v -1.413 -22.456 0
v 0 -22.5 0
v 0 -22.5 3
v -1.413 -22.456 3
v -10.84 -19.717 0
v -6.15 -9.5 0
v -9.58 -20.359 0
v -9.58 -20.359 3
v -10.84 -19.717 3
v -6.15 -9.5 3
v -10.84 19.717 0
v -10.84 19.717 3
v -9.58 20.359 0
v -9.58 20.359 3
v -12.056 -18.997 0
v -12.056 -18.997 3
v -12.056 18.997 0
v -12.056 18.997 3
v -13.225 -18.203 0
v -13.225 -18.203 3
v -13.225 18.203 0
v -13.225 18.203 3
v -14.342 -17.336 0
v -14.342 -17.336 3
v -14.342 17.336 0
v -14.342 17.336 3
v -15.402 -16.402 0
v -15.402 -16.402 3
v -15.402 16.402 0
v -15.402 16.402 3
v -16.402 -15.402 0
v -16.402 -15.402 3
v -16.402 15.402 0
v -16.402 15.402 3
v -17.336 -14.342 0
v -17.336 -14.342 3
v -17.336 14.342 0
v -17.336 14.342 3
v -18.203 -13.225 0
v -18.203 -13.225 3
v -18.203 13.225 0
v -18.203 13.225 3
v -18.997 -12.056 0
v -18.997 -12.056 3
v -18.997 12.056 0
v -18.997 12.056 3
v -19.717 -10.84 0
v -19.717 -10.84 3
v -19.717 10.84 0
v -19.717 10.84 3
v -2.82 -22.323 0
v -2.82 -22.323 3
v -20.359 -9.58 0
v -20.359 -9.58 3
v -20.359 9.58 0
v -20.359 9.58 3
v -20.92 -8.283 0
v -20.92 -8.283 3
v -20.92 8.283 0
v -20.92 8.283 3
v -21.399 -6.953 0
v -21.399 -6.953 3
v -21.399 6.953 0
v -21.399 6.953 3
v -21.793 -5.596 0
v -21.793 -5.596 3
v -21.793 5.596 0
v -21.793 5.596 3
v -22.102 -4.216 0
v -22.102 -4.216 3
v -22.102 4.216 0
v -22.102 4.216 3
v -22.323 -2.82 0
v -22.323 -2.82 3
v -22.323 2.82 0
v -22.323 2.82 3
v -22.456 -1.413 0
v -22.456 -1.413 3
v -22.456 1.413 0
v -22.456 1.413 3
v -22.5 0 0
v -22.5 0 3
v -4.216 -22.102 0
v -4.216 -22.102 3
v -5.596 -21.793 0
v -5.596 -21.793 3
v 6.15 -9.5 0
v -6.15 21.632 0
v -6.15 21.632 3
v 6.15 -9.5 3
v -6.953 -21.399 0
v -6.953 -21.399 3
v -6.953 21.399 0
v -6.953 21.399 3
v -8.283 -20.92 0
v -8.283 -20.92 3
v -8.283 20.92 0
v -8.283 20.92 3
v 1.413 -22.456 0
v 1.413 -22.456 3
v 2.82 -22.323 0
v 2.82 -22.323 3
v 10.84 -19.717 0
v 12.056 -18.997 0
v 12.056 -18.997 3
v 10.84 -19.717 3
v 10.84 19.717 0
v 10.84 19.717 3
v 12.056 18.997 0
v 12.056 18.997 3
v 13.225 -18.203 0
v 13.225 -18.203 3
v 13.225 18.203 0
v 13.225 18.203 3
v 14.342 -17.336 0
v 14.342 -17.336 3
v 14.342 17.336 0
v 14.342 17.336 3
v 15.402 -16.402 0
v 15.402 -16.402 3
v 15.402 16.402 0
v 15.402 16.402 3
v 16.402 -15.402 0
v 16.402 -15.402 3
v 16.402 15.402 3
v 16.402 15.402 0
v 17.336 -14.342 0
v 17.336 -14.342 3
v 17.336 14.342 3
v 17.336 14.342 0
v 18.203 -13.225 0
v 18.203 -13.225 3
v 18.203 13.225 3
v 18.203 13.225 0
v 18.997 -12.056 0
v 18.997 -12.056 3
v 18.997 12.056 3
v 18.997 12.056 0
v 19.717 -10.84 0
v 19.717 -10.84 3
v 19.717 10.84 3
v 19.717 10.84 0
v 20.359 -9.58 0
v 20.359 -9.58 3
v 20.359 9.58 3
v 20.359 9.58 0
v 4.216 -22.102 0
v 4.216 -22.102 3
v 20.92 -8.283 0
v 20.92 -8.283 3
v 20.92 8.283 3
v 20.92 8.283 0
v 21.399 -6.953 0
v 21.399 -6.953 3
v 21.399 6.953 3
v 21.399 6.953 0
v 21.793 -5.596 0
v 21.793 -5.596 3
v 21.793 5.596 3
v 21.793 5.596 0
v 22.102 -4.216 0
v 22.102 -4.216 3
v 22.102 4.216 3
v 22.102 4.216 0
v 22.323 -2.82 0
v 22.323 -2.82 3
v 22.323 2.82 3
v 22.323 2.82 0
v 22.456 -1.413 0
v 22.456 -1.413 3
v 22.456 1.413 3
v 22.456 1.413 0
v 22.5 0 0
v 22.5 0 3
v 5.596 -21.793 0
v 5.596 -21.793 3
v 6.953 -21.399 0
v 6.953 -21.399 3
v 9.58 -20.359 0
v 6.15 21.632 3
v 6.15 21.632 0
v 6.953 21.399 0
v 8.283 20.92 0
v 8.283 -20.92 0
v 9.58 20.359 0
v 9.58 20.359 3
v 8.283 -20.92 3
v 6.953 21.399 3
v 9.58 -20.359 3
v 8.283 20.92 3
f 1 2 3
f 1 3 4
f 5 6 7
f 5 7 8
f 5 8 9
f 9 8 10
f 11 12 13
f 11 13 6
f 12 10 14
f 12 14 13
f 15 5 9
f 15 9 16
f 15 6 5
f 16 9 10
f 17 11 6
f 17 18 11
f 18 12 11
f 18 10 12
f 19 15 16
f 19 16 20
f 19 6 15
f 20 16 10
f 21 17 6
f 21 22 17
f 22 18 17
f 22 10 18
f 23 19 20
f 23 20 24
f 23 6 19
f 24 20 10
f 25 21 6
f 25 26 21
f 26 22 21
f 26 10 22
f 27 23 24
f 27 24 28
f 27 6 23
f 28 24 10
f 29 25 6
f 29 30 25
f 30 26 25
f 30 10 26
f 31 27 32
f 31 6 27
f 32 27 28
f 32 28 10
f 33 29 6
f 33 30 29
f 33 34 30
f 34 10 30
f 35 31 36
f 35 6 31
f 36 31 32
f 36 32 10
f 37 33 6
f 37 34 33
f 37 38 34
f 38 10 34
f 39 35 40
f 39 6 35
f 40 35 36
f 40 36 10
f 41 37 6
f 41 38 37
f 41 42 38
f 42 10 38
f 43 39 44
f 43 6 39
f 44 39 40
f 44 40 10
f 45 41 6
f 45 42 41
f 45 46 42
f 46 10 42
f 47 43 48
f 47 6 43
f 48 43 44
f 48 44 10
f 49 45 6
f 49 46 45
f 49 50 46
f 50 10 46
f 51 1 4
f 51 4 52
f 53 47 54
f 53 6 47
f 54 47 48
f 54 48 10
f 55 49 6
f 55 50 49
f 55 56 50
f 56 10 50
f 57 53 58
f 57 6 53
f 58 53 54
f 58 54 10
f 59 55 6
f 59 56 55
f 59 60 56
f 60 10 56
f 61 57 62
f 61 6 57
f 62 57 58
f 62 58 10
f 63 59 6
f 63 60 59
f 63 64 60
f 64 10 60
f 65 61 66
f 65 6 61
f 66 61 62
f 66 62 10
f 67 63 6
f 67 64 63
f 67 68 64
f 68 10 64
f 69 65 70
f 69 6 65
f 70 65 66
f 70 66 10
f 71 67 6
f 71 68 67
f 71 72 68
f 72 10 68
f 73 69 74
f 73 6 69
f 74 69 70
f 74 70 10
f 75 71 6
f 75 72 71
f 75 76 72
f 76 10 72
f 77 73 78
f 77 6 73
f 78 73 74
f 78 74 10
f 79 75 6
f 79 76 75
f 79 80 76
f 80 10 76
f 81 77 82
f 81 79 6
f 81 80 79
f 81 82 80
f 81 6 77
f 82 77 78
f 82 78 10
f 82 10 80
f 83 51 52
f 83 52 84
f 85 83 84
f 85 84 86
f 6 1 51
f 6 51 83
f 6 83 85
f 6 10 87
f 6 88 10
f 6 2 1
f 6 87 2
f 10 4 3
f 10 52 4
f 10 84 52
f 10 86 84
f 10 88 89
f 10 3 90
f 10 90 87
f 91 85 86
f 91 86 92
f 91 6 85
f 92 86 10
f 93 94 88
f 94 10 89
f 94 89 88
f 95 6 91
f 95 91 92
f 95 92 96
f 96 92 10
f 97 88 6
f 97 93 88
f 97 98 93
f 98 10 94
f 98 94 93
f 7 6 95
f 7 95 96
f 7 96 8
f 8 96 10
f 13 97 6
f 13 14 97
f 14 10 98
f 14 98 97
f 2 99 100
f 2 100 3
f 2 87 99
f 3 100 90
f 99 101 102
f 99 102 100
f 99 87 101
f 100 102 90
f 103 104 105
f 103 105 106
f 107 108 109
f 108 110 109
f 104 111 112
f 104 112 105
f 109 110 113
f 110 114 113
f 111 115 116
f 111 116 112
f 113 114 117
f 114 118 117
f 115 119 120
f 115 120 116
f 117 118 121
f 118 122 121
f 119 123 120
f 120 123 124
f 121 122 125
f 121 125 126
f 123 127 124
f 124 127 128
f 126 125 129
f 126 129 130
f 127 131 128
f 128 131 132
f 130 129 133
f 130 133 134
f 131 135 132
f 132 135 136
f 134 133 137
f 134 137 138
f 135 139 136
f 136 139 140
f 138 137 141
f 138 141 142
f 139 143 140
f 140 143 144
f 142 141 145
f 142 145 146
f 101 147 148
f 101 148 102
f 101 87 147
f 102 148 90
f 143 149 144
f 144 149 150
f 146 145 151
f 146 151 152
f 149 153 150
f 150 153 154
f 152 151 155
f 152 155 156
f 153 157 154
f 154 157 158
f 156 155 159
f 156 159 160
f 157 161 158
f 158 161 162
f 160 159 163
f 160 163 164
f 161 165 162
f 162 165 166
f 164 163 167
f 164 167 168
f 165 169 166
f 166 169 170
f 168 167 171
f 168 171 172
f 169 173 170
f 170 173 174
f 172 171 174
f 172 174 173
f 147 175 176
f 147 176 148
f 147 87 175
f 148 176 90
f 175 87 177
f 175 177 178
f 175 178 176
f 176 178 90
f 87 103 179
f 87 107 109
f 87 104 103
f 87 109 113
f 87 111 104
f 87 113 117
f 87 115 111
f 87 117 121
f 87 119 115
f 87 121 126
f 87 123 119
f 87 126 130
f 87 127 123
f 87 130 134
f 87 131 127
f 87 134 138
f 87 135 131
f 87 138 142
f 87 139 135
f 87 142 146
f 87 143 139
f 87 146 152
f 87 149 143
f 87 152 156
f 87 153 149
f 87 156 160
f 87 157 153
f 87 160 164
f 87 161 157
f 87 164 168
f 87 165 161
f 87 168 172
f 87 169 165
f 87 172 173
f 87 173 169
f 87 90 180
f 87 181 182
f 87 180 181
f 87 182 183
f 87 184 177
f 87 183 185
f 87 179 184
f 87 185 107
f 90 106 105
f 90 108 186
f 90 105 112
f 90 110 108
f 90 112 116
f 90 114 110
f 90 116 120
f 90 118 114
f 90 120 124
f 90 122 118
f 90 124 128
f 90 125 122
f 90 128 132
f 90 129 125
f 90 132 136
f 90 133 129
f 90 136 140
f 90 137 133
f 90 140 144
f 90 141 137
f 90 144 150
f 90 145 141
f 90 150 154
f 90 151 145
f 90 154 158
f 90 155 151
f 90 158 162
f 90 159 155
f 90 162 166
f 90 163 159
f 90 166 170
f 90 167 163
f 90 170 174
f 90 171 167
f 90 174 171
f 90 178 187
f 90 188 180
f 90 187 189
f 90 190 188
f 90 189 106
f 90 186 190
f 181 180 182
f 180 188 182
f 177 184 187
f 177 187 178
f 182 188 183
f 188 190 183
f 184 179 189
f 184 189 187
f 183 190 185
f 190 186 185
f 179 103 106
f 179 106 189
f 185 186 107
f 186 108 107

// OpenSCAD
// file: lib/polyScrewThread_r1.scad
/*
 *    polyScrewThread_r1.scad    by aubenc @ Thingiverse
 *
 * This script contains the library modules that can be used to generate
 * threaded rods, screws and nuts.
 *
 * http://www.thingiverse.com/thing:8796
 *
 * CC Public Domain
 */


/* Example:
 * Just a 100mm long threaded rod.
 *
 * screw_thread(15,   // Outer diameter of the thread
 *               4,   // Step, traveling length per turn, also, tooth height, whatever...
 *              55,   // Degrees for the shape of the tooth 
 *                       (XY plane = 0, Z = 90, btw, 0 and 90 will/should not work...)
 *             100,   // Length (Z) of the tread
 *            PI/2,   // Resolution, one face each "PI/2" mm of the perimeter, 
 *               0);  // Countersink style:
 *                         -2 - Not even flat ends
 *                         -1 - Bottom (countersink'd and top flat)
 *                          0 - None (top and bottom flat)
 *                          1 - Top (bottom flat)
 *                          2 - Both (countersink'd)
 */
module screw_thread(od,st,lf0,lt,rs,cs)
{
    or=od/2;
    ir=or-st/2*cos(lf0)/sin(lf0);
    pf=2*PI*or;
    sn=floor(pf/rs);
    lfxy=360/sn;
    ttn=round(lt/st+1);
    zt=st/sn;

    intersection()
    {
        if (cs >= -1)
        {
           thread_shape(cs,lt,or,ir,sn,st);
        }

        full_thread(ttn,st,sn,zt,lfxy,or,ir);
    }
}

/* Example.
 * A nut for the thread rod example.
 *
 * hexa_nut(24,  // Distance between flats
 *           8,  // Height 
 *           4,  // Step height (the half will be used to countersink the ends)
 *          55,  // Degrees (same as used for the screw_thread example)
 *          15,  // Outer diameter of the thread to match
 *         0.5)  // Resolution, you may want to set this to small values
 *                  (quite high res) to minimize overhang issues
 *
 */
module hex_nut(df,hg,sth,clf,cod,crs)
{

    difference()
    {
        hex_head(hg,df);

        hex_countersink_ends(sth/2,cod,clf,crs,hg);

        screw_thread(cod,sth,clf,hg,crs,-2);
    }
}


module hex_screw(od,st,lf0,lt,rs,cs,df,hg,ntl,ntd)
{
    ntr=od/2-(st/2)*cos(lf0)/sin(lf0);

    union()
    {
        hex_head(hg,df);

        translate([0,0,hg])
        if ( ntl == 0 )
        {
            cylinder(h=0.01, r=ntr, center=true);
        }
        else
        {
            if ( ntd == -1 )
            {
                cylinder(h=ntl+0.01, r=ntr, $fn=floor(od*PI/rs), center=false);
            }
            else if ( ntd == 0 )
            {
                union()
                {
                    cylinder(h=ntl-st/2,
                             r=od/2, $fn=floor(od*PI/rs), center=false);

                    translate([0,0,ntl-st/2])
                    cylinder(h=st/2,
                             r1=od/2, r2=ntr, 
                             $fn=floor(od*PI/rs), center=false);
                }
            }
            else
            {
                cylinder(h=ntl, r=ntd/2, $fn=ntd*PI/rs, center=false);
            }
        }

        translate([0,0,ntl+hg]) screw_thread(od,st,lf0,lt,rs,cs);
    }
}

module hex_screw_0(od,st,lf0,lt,rs,cs,df,hg,ntl,ntd)
{
    ntr=od/2-(st/2)*cos(lf0)/sin(lf0);

    union()
    {
        hex_head_0(hg,df);

        translate([0,0,hg])
        if ( ntl == 0 )
        {
            cylinder(h=0.01, r=ntr, center=true);
        }
        else
        {
            if ( ntd == -1 )
            {
                cylinder(h=ntl+0.01, r=ntr, $fn=floor(od*PI/rs), center=false);
            }
            else if ( ntd == 0 )
            {
                union()
                {
                    cylinder(h=ntl-st/2,
                             r=od/2, $fn=floor(od*PI/rs), center=false);

                    translate([0,0,ntl-st/2])
                    cylinder(h=st/2,
                             r1=od/2, r2=ntr, 
                             $fn=floor(od*PI/rs), center=false);
                }
            }
            else
            {
                cylinder(h=ntl, r=ntd/2, $fn=ntd*PI/rs, center=false);
            }
        }

        translate([0,0,ntl+hg]) screw_thread(od,st,lf0,lt,rs,cs);
    }
}

module thread_shape(cs,lt,or,ir,sn,st)
{
    if ( cs == 0 )
    {
        cylinder(h=lt, r=or, $fn=sn, center=false);
    }
    else
    {
        union()
        {
            translate([0,0,st/2])
              cylinder(h=lt-st+0.005, r=or, $fn=sn, center=false);

            if ( cs == -1 || cs == 2 )
            {
                cylinder(h=st/2, r1=ir, r2=or, $fn=sn, center=false);
            }
            else
            {
                cylinder(h=st/2, r=or, $fn=sn, center=false);
            }

            translate([0,0,lt-st/2])
            if ( cs == 1 || cs == 2 )
            {
                  cylinder(h=st/2, r1=or, r2=ir, $fn=sn, center=false);
            }
            else
            {
                cylinder(h=st/2, r=or, $fn=sn, center=false);
            }
        }
    }
}

module full_thread(ttn,st,sn,zt,lfxy,or,ir)
{
  if(ir >= 0.2)
  {
    for(i=[0:ttn-1])
    {
        for(j=[0:sn-1])
			assign( pt = [	[0,                  0,                  i*st-st            ],
                        [ir*cos(j*lfxy),     ir*sin(j*lfxy),     i*st+j*zt-st       ],
                        [ir*cos((j+1)*lfxy), ir*sin((j+1)*lfxy), i*st+(j+1)*zt-st   ],
								[0,0,i*st],
                        [or*cos(j*lfxy),     or*sin(j*lfxy),     i*st+j*zt-st/2     ],
                        [or*cos((j+1)*lfxy), or*sin((j+1)*lfxy), i*st+(j+1)*zt-st/2 ],
                        [ir*cos(j*lfxy),     ir*sin(j*lfxy),     i*st+j*zt          ],
                        [ir*cos((j+1)*lfxy), ir*sin((j+1)*lfxy), i*st+(j+1)*zt      ],
                        [0,                  0,                  i*st+st            ]	])
        {
            polyhedron(points=pt,
              		  triangles=[	[1,0,3],[1,3,6],[6,3,8],[1,6,4],
											[0,1,2],[1,4,2],[2,4,5],[5,4,6],[5,6,7],[7,6,8],
											[7,8,3],[0,2,3],[3,2,7],[7,2,5]	]);
        }
    }
  }
  else
  {
    echo("Step Degrees too agresive, the thread will not be made!!");
    echo("Try to increase de value for the degrees and/or...");
    echo(" decrease the pitch value and/or...");
    echo(" increase the outer diameter value.");
  }
}

module hex_head(hg,df)
{
	rd0=df/2/sin(60);
	x0=0;	x1=df/2;	x2=x1+hg/2;
	y0=0;	y1=hg/2;	y2=hg;

	intersection()
	{
	   cylinder(h=hg, r=rd0, $fn=6, center=false);

		rotate_extrude(convexity=10, $fn=6*round(df*PI/6/0.5))
		polygon([ [x0,y0],[x1,y0],[x2,y1],[x1,y2],[x0,y2] ]);
	}
}

module hex_head_0(hg,df)
{
    cylinder(h=hg, r=df/2/sin(60), $fn=6, center=false);
}

module hex_countersink_ends(chg,cod,clf,crs,hg)
{
    translate([0,0,-0.1])
    cylinder(h=chg+0.01, 
             r1=cod/2, 
             r2=cod/2-(chg+0.1)*cos(clf)/sin(clf),
             $fn=floor(cod*PI/crs), center=false);

    translate([0,0,hg-chg+0.1])
    cylinder(h=chg+0.01, 
             r1=cod/2-(chg+0.1)*cos(clf)/sin(clf),
             r2=cod/2, 
             $fn=floor(cod*PI/crs), center=false);
}
// file: ../configuration.scad
//$fn=40; // model faces resolution.

//COMMON PARAMETERS
global_clearance = 0.5; // additional space where needed due to printer precision
layer_thickness = 0.3; // layer which is going to be removed after printing
//M3 x 12 Bolt
M3_nut_diameter = 6.6;
M3_nut_height = 2.7;
M3_bolt_diameter = 3.2;
M3_bolt_head_height = 3;
M3_bolt_length = 12;
//M5 Bolt
M5_bolt_diameter = 5.5;
M5_nut_height = 4.5;
M5_nut_diameter = 9.4;
//M6 Bolt
M6_bolt_diameter = 6.5;
M6_nut_height = 4.9;
M6_nut_diameter = 11.8;


//----------------------------------------------------------------
//----------------------------------------------------------------
//WINDGAUGE02A_S02 - Parametry pro hlavni valec anemometru
S01_hloubka_zavitu=4;
S01_vyska=110; //80
S01_prumer_vnitrni=50;
S01_sila_materialu=1.2;
S01_vyska_horni_zavit=10;
S01_vyska_spodniho_zavitu=10;
S01_sila_drzaku_RJ11=3; //vyška drážky
S01_hrana_A_RJ11=12.3;
S01_hrana_B_RJ11=19;
S01_tolerance_zavit=1.5;

//Rozměry ložiska se závity
//LO_spodni_prumer=22;
LO_spodni_prumer=17.2; //bez krytu
LO_vyska_bez_krytu=15;
LO_doraz_prumer=44.3;
LO_horni_prumer=7.7;
LO_vyska_spodni_doraz=5;
LO_vyska_horni_doraz=9;
LO_vyska_dorazu=0;





//Obecné parametry
prumer_osicky=5.1;



//Parametry loziska
lozisko_prumer_vnitrni=4.9;
lozisko_prumer_vnejsi=16.1;
lozisko_vyska=5;
lozisko_prekryv=1.5;

//Parametry magnetu
magnet_prumer=6.3;
magnet_vyska=5;
magnet_zapusteni=2;
magnet_tolerance_prumeru=0.2;

//Parametry sroubu
prumer_sroubu=3.4;
prumer_hlavy_sroubu=8.2;
vyska_hlavy_sroubu=4.3;
vyska_matky=3;
sirka_matky=6.7;

sirka_matky_tol=0.175;
prumer_orechu=10;

//WINDGAUGE02A_R01 //pro lopatku
L01_hrana_drzaku_a=10;
L01_hrana_drzaku_b=3;
L01_delka_uchytu=19;
L01_prumer_lopatky=40;
L01_sila_materialu_lopatky=0.9;

//WINDGAUGE02A_D02 Anemometer holder
//   | |   Top ring with Screw-thread
//  /   \  Body
// |_____| Base
D02_magnet_base_height = 4.5 + 1.5*global_clearance; // HS-13 M5 magnet height without bolt
D02_magnet_diameter = 16.1 + global_clearance; // HS-13 M5 magnet diameter
D02_flat_magnet_diameter = 18.1 + global_clearance; // HS-13 M5 magnet diameter
D02_wall_thickness = 5; // body wall thickness
D02_connector_spacing = 40; // main body cut-through for connectors
D02_base_diameter = 140; // diameter of holder base
D02_base_height = max(M6_nut_height + 1.5,
                      D02_magnet_base_height + M5_nut_height/2 + 1.5); // height of holder base
D02_body_height = 60 - D02_base_height; // height of body between base and top ring
D02_screw_diameter = S01_prumer_vnitrni - S01_tolerance_zavit; // scew-thread diameter based on stand S01
D02_thread_height = S01_vyska_spodniho_zavitu; // screw-thread height based on stand S01
D02_top_ring_inner_diameter = D02_screw_diameter - 6; // inner diameter of top ring
D02_top_ring_outer_diameter = D02_screw_diameter + 4; // outer diameter of top ring
D02_top_ring_height = D02_thread_height + 5; // height of top ring
D02_total_height = D02_base_height + D02_body_height + D02_top_ring_height; // total height of anemometer holder
// Following parameters are obsolete, maintained only for compatibility.
D01_material_pod_zavitem = D02_top_ring_height - D02_thread_height;
D01_material_za_zavitem = D02_screw_diameter - D02_top_ring_inner_diameter;
D01_material_pred_zavitem = D02_top_ring_outer_diameter - D02_screw_diameter;
D01_polomer_zakladny = D02_base_diameter/2;
D01_sila_setny_spodniho_drzaku=D02_wall_thickness;
D01_vyska_spodni_casti_drzaku = D02_body_height + D02_base_height;
D01_sirka_otvoru_pro_konektor = D02_connector_spacing;
D01_ucyhtna_matice_material_nad = D02_base_height - M6_nut_height;
D01_uchytna_matice_vyska = M6_nut_height;
D01_uchytna_matice_sirka = M6_nut_diameter;
D01_uchytny_sroub_prumer = M6_bolt_diameter;

// Following parameters are actually used in D01 model.
//WINDGAUGE02A_D02 //uchyt na sloup
D02_sila_materialu=6;
D02_vyska_uchytky=40;
D02_prumer_obruby=27; // 3/4 trubka
D02_delka_celeho_uchytu=60;
D02_dotahova_vzdalenost=1.5;
D02_prumer_uchytneho_sroubu=4.2;
D02_sirka_matky=9.1; //pro M4
D02_vyska_matky=3;


//WINDGAUGE02A_R01 //rotor s prekritim statoru
R01_vyska_prekryti_statoru=10;
R01_sila_materialu_pro_prekriti=1.3;
R01_mezera_mezi_statorem_rotorem=3;

//WINDGAUGE02A_R03 //drzak magnetu
R05_sirka_matky=10;



R03_prumer_zavitu=40;
R04_zavit_vyska=5;
R02_zavit_vyska=10;
R01_zavit_vyska=5;
R03_mezera_mezi_statorem_rotorem=3;

R02_delka_kridla=45;
R02_vzdalenost_der=25;

R02_delka_vyrovnnavaci_tyce=35;
R02_hrana_drzaku=14;
R02_sila_materialu_pod_tyci=5;
R02_sila_materialu_kridla=1.2;
R02_sila_materialu_kridla_tolerance=0.3;

R05_vyska_kridla=100;
R05_delka_kridla=100;


//S04
I2CDIFF01A_sirka_kon=16.5; //sirka konektoru
I2CDIFF01A_vyska_kon=13.5; //vyska konektoru
I2CDIFF01A_sirka_mod_otvory=4; //kolik modul zabira der
I2CDIFF01A_vyska_PCB=2; //vyska mezi albase a konektorem
S04_sila_materialu=2;

//S04_USBI2C01A
USBI2C01A_sirka_kon=12; //sirka konektoru
USBI2C01A_vyska_kon=11; //vyska konektoru
USBI2C01A_sirka_mod_otvory=3; //kolik modul zabira der
USBI2C01A_vyska_PCB=2; //vyska mezi albase a konektorem


//WINDGAUGE03A_R03 // Venturi tube
R03_wide_D = 36; // Venturi wide tube inner diameter
R03_narrow_D = R03_wide_D/1.4; // Venturi narrow tube inner diameter
R03_global_clearance = global_clearance; // additional space where needed due to printer precision
R03_PCB_top_rim = 5.5; // vertical distance from top of tube to top of PCB
R03_PCB_height = 41; // height of PCB casing - if changed check casing
R03_PCB_width = 14; // width of PCB casing - if changed check casing
R03_PCB_depth = 3.7; // depth of PCB casing - if changed check casing
R03_PCB_connector_overlay = 2.5; // additional depth of PCB casing on connectors side - if changed check casing
R03_PCB_elevation = 2; // additional elevation of PCB for waterproofing
R03_air_tube_diameter = 2; // air tubes diameter
R03_sensor_housing_offset = 15;  // distance from venturi tube height to sensor housing drop
R03_sensor_offset = 2.2;  // SDP33 distance from PCB border to sensor
R03_sensor_pitch = 4.3;  // SDP33 distance between sensors
R03_sensor_diameter = 3.5;  // SDP33 sensor diameter
R03_sensor_depth = 2.5;  // SDP33 sensor depth
R03_slip_ring_offset = 0; // slip-ring offset from tube center
R03_venturi_tube_height = 150;  // Venturi tube height (limited by max print size)
R03_wall_thickness = 3; // Venturi tube wall thickness
R03_sealing_ring_thickness = 1.5; // sealing ring size
R03_fin_width = 0.8; // width of vertical stabilizator
R03_fin_length = 150; // length of vertical stabilizator
R03_fin_height = 150; // height of vertical stabilizator
R03_fin_holder_width = M3_bolt_length + M3_nut_height;
R03_fin_holder_height = M3_nut_diameter + 2*R03_wall_thickness;
R03_fin_holder_depth = R03_wide_D/2 + R03_fin_holder_height;
R03_balance_shelf_width = 20; // width of shelf for balance weights
R03_balance_shelf_height = 10; // height of shelf for balance weights
// main file
$fn=40; // model faces resolution.
include <../configuration.scad>

include <./lib/polyScrewThread_r1.scad>

//Držák na konektor RJ11

PI=3.141592;
module WINDGAUGE01A_S03()
    {
    difference()
        {
        translate([0,0,0])
            cylinder (h = S01_sila_drzaku_RJ11, r=(S01_prumer_vnitrni)/2-S01_hloubka_zavitu/2-0.5, $fn=100); 
            
        translate([0,0,S01_sila_drzaku_RJ11/2])           
            cube([S01_hrana_A_RJ11,S01_hrana_B_RJ11,S01_sila_drzaku_RJ11+0.01],center=true);

        //otvor až ke kraji
        translate([0,((S01_prumer_vnitrni)/2-S01_hloubka_zavitu/2+0.5)/2,S01_sila_drzaku_RJ11/2])       cube([S01_hrana_A_RJ11,(S01_prumer_vnitrni)/2-S01_hloubka_zavitu/2+0.5,S01_sila_drzaku_RJ11+0.01],center=true);          
        }

    }

   

  
WINDGAUGE01A_S03(); 
